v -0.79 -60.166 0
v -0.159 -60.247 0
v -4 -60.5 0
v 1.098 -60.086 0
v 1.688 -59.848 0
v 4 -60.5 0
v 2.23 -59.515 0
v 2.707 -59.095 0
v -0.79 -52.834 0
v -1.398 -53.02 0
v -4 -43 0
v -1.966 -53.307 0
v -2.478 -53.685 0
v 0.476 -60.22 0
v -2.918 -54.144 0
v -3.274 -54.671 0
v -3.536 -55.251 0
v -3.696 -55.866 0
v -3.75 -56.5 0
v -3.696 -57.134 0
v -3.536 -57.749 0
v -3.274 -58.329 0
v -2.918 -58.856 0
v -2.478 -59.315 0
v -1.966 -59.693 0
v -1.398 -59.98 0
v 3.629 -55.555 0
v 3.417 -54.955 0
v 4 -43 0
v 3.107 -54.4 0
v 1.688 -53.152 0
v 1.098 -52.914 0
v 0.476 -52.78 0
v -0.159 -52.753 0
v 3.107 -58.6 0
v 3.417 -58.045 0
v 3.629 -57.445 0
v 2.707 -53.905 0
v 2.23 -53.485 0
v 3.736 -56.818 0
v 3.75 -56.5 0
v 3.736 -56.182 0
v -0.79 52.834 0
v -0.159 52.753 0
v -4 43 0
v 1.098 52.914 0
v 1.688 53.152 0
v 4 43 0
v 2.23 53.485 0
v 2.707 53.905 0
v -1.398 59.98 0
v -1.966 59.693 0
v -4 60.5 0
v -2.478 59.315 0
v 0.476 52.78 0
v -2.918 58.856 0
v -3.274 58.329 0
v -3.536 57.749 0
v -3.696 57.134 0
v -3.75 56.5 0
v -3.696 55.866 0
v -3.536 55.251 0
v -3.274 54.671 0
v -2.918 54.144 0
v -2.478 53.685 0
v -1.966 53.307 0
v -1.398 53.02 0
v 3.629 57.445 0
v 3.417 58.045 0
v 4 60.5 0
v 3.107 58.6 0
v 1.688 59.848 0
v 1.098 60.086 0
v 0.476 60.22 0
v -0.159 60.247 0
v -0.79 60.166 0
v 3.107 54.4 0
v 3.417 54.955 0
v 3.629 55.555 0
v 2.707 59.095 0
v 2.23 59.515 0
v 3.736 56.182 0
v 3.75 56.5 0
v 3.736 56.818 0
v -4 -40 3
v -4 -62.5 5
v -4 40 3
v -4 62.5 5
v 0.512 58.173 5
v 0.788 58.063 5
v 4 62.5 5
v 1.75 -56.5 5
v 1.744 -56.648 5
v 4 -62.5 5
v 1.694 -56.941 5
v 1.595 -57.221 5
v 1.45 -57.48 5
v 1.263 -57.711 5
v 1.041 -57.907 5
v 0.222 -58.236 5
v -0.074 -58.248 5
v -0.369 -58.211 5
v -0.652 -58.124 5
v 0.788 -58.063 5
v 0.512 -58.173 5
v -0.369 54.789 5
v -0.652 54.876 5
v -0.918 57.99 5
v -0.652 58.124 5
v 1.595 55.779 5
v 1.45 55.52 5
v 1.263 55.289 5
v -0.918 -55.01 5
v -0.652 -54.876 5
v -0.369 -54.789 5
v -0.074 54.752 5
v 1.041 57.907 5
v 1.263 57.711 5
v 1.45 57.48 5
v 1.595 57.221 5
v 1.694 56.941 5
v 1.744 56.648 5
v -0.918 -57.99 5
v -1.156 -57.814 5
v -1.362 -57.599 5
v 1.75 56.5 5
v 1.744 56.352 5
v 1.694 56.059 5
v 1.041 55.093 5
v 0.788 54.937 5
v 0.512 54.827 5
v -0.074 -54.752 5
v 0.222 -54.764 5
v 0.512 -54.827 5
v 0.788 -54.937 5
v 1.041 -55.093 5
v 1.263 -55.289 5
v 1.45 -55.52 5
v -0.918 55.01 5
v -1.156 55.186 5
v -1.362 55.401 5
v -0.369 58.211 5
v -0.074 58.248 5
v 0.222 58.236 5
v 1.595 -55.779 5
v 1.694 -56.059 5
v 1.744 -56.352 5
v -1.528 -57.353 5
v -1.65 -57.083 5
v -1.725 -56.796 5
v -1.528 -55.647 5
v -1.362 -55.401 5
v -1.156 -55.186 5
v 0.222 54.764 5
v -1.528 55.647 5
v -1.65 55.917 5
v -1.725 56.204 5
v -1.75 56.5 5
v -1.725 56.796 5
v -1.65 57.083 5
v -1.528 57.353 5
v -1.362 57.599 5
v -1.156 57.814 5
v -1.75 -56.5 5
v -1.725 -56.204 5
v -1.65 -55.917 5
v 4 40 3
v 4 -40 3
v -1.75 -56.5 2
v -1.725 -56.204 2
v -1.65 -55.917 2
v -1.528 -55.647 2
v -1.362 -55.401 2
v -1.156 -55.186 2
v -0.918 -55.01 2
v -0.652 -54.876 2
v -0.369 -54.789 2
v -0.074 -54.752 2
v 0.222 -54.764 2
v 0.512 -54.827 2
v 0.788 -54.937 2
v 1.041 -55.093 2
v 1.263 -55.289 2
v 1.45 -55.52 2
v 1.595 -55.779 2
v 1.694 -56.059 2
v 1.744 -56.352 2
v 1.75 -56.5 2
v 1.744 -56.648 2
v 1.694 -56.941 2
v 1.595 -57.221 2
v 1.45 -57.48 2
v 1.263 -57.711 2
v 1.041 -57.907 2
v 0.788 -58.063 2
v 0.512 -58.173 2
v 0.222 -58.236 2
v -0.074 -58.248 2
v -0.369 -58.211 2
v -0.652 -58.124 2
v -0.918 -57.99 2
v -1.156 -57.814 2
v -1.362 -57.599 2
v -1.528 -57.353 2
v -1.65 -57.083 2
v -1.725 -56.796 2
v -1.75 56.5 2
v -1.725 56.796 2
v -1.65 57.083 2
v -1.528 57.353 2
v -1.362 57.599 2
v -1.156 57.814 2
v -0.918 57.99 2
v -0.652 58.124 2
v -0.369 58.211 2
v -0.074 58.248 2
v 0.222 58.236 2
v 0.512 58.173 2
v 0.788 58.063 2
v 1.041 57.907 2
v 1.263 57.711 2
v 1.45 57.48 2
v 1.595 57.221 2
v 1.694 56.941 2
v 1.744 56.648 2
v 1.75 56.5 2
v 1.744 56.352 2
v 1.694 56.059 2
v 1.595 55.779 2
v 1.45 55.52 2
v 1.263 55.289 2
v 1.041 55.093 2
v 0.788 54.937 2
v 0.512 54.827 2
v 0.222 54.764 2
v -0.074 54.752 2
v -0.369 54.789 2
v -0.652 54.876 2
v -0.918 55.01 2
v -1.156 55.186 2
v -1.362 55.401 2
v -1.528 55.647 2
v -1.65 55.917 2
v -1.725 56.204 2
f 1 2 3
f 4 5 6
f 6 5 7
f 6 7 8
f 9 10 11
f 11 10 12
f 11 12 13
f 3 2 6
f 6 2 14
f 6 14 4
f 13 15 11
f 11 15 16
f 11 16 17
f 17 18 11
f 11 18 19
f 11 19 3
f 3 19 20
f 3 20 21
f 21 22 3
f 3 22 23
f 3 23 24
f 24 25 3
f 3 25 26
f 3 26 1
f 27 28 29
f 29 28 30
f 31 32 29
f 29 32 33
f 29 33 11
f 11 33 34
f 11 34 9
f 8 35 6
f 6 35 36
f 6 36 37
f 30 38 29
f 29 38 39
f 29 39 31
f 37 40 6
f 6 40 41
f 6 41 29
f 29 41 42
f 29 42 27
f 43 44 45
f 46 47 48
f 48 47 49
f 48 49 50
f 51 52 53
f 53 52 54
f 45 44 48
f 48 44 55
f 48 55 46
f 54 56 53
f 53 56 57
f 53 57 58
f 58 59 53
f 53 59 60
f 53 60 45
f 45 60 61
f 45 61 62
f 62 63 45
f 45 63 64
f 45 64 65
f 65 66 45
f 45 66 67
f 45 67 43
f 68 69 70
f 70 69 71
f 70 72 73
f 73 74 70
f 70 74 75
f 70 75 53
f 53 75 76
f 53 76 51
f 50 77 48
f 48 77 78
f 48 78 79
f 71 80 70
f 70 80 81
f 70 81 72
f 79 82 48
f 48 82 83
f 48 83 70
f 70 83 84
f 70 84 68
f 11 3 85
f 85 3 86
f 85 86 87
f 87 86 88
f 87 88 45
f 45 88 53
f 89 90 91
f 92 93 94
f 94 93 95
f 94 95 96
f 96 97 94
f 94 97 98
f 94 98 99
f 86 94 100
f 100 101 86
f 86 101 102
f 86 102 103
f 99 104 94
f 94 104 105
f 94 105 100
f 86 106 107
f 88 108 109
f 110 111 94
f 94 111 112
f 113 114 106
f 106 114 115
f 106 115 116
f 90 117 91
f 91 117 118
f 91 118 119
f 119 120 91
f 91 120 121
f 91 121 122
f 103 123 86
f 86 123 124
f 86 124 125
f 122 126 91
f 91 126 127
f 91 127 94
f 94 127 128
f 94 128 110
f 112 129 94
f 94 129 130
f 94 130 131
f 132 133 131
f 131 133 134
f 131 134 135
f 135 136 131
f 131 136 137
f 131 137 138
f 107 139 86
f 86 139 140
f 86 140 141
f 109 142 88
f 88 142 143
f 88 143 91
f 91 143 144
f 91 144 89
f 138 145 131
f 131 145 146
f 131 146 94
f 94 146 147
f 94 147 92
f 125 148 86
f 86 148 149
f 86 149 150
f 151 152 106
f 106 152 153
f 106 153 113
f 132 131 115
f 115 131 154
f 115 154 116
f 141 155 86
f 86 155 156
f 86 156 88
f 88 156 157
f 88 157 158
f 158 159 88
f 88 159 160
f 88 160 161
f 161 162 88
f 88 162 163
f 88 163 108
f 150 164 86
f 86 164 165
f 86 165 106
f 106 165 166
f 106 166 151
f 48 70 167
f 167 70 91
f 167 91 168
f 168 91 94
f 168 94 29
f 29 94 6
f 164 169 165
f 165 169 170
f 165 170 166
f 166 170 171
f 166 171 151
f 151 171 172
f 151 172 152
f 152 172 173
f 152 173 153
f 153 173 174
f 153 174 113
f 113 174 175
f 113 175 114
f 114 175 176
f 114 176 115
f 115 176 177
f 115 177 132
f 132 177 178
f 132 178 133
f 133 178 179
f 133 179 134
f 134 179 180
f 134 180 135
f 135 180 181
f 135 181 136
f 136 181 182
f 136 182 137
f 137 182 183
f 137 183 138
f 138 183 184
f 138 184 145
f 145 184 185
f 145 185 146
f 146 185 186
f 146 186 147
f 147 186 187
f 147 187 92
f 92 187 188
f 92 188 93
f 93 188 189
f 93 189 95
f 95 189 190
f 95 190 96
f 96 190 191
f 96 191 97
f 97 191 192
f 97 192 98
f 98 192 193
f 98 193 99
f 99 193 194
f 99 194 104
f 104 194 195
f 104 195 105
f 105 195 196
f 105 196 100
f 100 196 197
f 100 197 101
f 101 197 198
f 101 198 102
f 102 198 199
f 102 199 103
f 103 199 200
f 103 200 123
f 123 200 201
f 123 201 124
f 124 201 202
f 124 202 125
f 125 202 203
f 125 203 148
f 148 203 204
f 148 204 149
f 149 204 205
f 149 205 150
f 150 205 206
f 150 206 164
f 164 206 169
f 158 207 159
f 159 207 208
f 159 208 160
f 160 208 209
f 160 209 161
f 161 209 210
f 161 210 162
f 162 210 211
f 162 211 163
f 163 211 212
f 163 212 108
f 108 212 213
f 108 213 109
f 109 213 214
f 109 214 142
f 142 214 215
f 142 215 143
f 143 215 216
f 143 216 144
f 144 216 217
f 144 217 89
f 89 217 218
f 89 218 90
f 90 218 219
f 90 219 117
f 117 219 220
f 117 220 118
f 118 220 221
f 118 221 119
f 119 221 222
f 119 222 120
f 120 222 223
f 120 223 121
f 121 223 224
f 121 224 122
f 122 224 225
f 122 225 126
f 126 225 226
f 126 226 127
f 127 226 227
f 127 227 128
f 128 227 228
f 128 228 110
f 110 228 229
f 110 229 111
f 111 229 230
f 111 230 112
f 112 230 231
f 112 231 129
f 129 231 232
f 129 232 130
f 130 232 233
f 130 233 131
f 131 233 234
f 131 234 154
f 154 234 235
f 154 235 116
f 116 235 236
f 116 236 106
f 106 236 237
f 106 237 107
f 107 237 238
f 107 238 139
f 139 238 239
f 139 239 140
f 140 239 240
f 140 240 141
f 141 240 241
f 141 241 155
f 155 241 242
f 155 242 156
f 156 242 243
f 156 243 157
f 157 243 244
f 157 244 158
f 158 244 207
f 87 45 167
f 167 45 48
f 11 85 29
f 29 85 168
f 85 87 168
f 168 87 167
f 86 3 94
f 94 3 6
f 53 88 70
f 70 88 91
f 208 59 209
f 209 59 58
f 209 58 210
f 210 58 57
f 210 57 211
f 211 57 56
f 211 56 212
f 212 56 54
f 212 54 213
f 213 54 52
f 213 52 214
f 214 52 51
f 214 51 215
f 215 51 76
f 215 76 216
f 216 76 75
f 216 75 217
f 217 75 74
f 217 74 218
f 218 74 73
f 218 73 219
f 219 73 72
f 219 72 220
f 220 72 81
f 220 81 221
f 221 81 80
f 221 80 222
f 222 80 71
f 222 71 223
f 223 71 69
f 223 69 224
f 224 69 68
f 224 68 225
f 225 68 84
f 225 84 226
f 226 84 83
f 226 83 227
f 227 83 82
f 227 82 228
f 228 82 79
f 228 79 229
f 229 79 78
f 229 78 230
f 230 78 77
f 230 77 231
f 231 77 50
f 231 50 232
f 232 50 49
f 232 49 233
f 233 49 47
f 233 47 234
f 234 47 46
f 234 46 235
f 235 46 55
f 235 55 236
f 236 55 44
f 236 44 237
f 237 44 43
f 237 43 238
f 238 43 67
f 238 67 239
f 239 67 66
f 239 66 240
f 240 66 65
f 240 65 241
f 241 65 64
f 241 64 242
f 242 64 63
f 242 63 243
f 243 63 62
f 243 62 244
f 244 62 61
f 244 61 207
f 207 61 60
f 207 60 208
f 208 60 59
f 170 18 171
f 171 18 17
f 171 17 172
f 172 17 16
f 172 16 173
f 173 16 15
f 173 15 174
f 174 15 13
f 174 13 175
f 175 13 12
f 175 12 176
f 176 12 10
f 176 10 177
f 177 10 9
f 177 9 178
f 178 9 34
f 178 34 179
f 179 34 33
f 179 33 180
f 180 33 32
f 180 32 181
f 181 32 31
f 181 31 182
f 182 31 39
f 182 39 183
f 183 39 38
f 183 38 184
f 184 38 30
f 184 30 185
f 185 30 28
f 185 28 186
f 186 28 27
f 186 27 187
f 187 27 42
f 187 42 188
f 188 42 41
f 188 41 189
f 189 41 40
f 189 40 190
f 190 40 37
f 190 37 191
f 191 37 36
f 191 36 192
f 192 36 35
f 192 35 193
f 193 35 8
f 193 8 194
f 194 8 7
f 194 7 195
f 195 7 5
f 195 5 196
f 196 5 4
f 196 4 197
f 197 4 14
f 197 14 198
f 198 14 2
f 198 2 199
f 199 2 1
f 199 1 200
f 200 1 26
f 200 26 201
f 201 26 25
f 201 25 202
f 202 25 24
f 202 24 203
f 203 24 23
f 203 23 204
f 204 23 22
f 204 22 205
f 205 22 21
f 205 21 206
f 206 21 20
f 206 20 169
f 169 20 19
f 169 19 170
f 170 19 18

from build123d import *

# Parameters (mm, degrees)
SKETCH1_W           = 125
SKETCH1_H           = 8
SKETCH1_R           = 1.75
BOSS_EXTRUDE1_DEPTH = 5
CUT_EXTRUDE1_DEPTH  = 64.207990001
CHAMFER1_SIZE       = 2


with BuildPart() as part:
    # Sketch1 → Boss-Extrude1 (new body)
    with BuildSketch(Plane(origin=(0, 0, 0), x_dir=(0, 1, 0), z_dir=(0, 0, 1))):
        Rectangle(SKETCH1_W, SKETCH1_H)
        with Locations(Location((-56.5, 0, 0), (0, 0, 270))):
            Circle(SKETCH1_R, mode=Mode.SUBTRACT)
        with Locations(Location((56.5, 0, 0), (0, 0, 270))):
            Circle(SKETCH1_R, mode=Mode.SUBTRACT)
    extrude(amount=BOSS_EXTRUDE1_DEPTH)

    # Sketch2 → Cut-Extrude1 (cut, through all)
    with BuildSketch(Plane.YZ.offset(4)):
        Polygon((-40, 3), (-43, 0), (43, 0), (40, 3), align=None)
        Polygon((-60.5, 0), (-62.5, 5), (-62.5, 0), align=None)
        Polygon((62.5, 5), (60.5, 0), (62.5, 0), align=None)
    extrude(amount=-CUT_EXTRUDE1_DEPTH, mode=Mode.SUBTRACT)

    # Chamfer1
    chamfer1_edges = [part.edges().sort_by_distance(p)[0] for p in [
        (-1.75, -56.5, 0),
        (-1.75, 56.5, 0),
    ]]
    chamfer(chamfer1_edges, length=CHAMFER1_SIZE)


solid = part.part
